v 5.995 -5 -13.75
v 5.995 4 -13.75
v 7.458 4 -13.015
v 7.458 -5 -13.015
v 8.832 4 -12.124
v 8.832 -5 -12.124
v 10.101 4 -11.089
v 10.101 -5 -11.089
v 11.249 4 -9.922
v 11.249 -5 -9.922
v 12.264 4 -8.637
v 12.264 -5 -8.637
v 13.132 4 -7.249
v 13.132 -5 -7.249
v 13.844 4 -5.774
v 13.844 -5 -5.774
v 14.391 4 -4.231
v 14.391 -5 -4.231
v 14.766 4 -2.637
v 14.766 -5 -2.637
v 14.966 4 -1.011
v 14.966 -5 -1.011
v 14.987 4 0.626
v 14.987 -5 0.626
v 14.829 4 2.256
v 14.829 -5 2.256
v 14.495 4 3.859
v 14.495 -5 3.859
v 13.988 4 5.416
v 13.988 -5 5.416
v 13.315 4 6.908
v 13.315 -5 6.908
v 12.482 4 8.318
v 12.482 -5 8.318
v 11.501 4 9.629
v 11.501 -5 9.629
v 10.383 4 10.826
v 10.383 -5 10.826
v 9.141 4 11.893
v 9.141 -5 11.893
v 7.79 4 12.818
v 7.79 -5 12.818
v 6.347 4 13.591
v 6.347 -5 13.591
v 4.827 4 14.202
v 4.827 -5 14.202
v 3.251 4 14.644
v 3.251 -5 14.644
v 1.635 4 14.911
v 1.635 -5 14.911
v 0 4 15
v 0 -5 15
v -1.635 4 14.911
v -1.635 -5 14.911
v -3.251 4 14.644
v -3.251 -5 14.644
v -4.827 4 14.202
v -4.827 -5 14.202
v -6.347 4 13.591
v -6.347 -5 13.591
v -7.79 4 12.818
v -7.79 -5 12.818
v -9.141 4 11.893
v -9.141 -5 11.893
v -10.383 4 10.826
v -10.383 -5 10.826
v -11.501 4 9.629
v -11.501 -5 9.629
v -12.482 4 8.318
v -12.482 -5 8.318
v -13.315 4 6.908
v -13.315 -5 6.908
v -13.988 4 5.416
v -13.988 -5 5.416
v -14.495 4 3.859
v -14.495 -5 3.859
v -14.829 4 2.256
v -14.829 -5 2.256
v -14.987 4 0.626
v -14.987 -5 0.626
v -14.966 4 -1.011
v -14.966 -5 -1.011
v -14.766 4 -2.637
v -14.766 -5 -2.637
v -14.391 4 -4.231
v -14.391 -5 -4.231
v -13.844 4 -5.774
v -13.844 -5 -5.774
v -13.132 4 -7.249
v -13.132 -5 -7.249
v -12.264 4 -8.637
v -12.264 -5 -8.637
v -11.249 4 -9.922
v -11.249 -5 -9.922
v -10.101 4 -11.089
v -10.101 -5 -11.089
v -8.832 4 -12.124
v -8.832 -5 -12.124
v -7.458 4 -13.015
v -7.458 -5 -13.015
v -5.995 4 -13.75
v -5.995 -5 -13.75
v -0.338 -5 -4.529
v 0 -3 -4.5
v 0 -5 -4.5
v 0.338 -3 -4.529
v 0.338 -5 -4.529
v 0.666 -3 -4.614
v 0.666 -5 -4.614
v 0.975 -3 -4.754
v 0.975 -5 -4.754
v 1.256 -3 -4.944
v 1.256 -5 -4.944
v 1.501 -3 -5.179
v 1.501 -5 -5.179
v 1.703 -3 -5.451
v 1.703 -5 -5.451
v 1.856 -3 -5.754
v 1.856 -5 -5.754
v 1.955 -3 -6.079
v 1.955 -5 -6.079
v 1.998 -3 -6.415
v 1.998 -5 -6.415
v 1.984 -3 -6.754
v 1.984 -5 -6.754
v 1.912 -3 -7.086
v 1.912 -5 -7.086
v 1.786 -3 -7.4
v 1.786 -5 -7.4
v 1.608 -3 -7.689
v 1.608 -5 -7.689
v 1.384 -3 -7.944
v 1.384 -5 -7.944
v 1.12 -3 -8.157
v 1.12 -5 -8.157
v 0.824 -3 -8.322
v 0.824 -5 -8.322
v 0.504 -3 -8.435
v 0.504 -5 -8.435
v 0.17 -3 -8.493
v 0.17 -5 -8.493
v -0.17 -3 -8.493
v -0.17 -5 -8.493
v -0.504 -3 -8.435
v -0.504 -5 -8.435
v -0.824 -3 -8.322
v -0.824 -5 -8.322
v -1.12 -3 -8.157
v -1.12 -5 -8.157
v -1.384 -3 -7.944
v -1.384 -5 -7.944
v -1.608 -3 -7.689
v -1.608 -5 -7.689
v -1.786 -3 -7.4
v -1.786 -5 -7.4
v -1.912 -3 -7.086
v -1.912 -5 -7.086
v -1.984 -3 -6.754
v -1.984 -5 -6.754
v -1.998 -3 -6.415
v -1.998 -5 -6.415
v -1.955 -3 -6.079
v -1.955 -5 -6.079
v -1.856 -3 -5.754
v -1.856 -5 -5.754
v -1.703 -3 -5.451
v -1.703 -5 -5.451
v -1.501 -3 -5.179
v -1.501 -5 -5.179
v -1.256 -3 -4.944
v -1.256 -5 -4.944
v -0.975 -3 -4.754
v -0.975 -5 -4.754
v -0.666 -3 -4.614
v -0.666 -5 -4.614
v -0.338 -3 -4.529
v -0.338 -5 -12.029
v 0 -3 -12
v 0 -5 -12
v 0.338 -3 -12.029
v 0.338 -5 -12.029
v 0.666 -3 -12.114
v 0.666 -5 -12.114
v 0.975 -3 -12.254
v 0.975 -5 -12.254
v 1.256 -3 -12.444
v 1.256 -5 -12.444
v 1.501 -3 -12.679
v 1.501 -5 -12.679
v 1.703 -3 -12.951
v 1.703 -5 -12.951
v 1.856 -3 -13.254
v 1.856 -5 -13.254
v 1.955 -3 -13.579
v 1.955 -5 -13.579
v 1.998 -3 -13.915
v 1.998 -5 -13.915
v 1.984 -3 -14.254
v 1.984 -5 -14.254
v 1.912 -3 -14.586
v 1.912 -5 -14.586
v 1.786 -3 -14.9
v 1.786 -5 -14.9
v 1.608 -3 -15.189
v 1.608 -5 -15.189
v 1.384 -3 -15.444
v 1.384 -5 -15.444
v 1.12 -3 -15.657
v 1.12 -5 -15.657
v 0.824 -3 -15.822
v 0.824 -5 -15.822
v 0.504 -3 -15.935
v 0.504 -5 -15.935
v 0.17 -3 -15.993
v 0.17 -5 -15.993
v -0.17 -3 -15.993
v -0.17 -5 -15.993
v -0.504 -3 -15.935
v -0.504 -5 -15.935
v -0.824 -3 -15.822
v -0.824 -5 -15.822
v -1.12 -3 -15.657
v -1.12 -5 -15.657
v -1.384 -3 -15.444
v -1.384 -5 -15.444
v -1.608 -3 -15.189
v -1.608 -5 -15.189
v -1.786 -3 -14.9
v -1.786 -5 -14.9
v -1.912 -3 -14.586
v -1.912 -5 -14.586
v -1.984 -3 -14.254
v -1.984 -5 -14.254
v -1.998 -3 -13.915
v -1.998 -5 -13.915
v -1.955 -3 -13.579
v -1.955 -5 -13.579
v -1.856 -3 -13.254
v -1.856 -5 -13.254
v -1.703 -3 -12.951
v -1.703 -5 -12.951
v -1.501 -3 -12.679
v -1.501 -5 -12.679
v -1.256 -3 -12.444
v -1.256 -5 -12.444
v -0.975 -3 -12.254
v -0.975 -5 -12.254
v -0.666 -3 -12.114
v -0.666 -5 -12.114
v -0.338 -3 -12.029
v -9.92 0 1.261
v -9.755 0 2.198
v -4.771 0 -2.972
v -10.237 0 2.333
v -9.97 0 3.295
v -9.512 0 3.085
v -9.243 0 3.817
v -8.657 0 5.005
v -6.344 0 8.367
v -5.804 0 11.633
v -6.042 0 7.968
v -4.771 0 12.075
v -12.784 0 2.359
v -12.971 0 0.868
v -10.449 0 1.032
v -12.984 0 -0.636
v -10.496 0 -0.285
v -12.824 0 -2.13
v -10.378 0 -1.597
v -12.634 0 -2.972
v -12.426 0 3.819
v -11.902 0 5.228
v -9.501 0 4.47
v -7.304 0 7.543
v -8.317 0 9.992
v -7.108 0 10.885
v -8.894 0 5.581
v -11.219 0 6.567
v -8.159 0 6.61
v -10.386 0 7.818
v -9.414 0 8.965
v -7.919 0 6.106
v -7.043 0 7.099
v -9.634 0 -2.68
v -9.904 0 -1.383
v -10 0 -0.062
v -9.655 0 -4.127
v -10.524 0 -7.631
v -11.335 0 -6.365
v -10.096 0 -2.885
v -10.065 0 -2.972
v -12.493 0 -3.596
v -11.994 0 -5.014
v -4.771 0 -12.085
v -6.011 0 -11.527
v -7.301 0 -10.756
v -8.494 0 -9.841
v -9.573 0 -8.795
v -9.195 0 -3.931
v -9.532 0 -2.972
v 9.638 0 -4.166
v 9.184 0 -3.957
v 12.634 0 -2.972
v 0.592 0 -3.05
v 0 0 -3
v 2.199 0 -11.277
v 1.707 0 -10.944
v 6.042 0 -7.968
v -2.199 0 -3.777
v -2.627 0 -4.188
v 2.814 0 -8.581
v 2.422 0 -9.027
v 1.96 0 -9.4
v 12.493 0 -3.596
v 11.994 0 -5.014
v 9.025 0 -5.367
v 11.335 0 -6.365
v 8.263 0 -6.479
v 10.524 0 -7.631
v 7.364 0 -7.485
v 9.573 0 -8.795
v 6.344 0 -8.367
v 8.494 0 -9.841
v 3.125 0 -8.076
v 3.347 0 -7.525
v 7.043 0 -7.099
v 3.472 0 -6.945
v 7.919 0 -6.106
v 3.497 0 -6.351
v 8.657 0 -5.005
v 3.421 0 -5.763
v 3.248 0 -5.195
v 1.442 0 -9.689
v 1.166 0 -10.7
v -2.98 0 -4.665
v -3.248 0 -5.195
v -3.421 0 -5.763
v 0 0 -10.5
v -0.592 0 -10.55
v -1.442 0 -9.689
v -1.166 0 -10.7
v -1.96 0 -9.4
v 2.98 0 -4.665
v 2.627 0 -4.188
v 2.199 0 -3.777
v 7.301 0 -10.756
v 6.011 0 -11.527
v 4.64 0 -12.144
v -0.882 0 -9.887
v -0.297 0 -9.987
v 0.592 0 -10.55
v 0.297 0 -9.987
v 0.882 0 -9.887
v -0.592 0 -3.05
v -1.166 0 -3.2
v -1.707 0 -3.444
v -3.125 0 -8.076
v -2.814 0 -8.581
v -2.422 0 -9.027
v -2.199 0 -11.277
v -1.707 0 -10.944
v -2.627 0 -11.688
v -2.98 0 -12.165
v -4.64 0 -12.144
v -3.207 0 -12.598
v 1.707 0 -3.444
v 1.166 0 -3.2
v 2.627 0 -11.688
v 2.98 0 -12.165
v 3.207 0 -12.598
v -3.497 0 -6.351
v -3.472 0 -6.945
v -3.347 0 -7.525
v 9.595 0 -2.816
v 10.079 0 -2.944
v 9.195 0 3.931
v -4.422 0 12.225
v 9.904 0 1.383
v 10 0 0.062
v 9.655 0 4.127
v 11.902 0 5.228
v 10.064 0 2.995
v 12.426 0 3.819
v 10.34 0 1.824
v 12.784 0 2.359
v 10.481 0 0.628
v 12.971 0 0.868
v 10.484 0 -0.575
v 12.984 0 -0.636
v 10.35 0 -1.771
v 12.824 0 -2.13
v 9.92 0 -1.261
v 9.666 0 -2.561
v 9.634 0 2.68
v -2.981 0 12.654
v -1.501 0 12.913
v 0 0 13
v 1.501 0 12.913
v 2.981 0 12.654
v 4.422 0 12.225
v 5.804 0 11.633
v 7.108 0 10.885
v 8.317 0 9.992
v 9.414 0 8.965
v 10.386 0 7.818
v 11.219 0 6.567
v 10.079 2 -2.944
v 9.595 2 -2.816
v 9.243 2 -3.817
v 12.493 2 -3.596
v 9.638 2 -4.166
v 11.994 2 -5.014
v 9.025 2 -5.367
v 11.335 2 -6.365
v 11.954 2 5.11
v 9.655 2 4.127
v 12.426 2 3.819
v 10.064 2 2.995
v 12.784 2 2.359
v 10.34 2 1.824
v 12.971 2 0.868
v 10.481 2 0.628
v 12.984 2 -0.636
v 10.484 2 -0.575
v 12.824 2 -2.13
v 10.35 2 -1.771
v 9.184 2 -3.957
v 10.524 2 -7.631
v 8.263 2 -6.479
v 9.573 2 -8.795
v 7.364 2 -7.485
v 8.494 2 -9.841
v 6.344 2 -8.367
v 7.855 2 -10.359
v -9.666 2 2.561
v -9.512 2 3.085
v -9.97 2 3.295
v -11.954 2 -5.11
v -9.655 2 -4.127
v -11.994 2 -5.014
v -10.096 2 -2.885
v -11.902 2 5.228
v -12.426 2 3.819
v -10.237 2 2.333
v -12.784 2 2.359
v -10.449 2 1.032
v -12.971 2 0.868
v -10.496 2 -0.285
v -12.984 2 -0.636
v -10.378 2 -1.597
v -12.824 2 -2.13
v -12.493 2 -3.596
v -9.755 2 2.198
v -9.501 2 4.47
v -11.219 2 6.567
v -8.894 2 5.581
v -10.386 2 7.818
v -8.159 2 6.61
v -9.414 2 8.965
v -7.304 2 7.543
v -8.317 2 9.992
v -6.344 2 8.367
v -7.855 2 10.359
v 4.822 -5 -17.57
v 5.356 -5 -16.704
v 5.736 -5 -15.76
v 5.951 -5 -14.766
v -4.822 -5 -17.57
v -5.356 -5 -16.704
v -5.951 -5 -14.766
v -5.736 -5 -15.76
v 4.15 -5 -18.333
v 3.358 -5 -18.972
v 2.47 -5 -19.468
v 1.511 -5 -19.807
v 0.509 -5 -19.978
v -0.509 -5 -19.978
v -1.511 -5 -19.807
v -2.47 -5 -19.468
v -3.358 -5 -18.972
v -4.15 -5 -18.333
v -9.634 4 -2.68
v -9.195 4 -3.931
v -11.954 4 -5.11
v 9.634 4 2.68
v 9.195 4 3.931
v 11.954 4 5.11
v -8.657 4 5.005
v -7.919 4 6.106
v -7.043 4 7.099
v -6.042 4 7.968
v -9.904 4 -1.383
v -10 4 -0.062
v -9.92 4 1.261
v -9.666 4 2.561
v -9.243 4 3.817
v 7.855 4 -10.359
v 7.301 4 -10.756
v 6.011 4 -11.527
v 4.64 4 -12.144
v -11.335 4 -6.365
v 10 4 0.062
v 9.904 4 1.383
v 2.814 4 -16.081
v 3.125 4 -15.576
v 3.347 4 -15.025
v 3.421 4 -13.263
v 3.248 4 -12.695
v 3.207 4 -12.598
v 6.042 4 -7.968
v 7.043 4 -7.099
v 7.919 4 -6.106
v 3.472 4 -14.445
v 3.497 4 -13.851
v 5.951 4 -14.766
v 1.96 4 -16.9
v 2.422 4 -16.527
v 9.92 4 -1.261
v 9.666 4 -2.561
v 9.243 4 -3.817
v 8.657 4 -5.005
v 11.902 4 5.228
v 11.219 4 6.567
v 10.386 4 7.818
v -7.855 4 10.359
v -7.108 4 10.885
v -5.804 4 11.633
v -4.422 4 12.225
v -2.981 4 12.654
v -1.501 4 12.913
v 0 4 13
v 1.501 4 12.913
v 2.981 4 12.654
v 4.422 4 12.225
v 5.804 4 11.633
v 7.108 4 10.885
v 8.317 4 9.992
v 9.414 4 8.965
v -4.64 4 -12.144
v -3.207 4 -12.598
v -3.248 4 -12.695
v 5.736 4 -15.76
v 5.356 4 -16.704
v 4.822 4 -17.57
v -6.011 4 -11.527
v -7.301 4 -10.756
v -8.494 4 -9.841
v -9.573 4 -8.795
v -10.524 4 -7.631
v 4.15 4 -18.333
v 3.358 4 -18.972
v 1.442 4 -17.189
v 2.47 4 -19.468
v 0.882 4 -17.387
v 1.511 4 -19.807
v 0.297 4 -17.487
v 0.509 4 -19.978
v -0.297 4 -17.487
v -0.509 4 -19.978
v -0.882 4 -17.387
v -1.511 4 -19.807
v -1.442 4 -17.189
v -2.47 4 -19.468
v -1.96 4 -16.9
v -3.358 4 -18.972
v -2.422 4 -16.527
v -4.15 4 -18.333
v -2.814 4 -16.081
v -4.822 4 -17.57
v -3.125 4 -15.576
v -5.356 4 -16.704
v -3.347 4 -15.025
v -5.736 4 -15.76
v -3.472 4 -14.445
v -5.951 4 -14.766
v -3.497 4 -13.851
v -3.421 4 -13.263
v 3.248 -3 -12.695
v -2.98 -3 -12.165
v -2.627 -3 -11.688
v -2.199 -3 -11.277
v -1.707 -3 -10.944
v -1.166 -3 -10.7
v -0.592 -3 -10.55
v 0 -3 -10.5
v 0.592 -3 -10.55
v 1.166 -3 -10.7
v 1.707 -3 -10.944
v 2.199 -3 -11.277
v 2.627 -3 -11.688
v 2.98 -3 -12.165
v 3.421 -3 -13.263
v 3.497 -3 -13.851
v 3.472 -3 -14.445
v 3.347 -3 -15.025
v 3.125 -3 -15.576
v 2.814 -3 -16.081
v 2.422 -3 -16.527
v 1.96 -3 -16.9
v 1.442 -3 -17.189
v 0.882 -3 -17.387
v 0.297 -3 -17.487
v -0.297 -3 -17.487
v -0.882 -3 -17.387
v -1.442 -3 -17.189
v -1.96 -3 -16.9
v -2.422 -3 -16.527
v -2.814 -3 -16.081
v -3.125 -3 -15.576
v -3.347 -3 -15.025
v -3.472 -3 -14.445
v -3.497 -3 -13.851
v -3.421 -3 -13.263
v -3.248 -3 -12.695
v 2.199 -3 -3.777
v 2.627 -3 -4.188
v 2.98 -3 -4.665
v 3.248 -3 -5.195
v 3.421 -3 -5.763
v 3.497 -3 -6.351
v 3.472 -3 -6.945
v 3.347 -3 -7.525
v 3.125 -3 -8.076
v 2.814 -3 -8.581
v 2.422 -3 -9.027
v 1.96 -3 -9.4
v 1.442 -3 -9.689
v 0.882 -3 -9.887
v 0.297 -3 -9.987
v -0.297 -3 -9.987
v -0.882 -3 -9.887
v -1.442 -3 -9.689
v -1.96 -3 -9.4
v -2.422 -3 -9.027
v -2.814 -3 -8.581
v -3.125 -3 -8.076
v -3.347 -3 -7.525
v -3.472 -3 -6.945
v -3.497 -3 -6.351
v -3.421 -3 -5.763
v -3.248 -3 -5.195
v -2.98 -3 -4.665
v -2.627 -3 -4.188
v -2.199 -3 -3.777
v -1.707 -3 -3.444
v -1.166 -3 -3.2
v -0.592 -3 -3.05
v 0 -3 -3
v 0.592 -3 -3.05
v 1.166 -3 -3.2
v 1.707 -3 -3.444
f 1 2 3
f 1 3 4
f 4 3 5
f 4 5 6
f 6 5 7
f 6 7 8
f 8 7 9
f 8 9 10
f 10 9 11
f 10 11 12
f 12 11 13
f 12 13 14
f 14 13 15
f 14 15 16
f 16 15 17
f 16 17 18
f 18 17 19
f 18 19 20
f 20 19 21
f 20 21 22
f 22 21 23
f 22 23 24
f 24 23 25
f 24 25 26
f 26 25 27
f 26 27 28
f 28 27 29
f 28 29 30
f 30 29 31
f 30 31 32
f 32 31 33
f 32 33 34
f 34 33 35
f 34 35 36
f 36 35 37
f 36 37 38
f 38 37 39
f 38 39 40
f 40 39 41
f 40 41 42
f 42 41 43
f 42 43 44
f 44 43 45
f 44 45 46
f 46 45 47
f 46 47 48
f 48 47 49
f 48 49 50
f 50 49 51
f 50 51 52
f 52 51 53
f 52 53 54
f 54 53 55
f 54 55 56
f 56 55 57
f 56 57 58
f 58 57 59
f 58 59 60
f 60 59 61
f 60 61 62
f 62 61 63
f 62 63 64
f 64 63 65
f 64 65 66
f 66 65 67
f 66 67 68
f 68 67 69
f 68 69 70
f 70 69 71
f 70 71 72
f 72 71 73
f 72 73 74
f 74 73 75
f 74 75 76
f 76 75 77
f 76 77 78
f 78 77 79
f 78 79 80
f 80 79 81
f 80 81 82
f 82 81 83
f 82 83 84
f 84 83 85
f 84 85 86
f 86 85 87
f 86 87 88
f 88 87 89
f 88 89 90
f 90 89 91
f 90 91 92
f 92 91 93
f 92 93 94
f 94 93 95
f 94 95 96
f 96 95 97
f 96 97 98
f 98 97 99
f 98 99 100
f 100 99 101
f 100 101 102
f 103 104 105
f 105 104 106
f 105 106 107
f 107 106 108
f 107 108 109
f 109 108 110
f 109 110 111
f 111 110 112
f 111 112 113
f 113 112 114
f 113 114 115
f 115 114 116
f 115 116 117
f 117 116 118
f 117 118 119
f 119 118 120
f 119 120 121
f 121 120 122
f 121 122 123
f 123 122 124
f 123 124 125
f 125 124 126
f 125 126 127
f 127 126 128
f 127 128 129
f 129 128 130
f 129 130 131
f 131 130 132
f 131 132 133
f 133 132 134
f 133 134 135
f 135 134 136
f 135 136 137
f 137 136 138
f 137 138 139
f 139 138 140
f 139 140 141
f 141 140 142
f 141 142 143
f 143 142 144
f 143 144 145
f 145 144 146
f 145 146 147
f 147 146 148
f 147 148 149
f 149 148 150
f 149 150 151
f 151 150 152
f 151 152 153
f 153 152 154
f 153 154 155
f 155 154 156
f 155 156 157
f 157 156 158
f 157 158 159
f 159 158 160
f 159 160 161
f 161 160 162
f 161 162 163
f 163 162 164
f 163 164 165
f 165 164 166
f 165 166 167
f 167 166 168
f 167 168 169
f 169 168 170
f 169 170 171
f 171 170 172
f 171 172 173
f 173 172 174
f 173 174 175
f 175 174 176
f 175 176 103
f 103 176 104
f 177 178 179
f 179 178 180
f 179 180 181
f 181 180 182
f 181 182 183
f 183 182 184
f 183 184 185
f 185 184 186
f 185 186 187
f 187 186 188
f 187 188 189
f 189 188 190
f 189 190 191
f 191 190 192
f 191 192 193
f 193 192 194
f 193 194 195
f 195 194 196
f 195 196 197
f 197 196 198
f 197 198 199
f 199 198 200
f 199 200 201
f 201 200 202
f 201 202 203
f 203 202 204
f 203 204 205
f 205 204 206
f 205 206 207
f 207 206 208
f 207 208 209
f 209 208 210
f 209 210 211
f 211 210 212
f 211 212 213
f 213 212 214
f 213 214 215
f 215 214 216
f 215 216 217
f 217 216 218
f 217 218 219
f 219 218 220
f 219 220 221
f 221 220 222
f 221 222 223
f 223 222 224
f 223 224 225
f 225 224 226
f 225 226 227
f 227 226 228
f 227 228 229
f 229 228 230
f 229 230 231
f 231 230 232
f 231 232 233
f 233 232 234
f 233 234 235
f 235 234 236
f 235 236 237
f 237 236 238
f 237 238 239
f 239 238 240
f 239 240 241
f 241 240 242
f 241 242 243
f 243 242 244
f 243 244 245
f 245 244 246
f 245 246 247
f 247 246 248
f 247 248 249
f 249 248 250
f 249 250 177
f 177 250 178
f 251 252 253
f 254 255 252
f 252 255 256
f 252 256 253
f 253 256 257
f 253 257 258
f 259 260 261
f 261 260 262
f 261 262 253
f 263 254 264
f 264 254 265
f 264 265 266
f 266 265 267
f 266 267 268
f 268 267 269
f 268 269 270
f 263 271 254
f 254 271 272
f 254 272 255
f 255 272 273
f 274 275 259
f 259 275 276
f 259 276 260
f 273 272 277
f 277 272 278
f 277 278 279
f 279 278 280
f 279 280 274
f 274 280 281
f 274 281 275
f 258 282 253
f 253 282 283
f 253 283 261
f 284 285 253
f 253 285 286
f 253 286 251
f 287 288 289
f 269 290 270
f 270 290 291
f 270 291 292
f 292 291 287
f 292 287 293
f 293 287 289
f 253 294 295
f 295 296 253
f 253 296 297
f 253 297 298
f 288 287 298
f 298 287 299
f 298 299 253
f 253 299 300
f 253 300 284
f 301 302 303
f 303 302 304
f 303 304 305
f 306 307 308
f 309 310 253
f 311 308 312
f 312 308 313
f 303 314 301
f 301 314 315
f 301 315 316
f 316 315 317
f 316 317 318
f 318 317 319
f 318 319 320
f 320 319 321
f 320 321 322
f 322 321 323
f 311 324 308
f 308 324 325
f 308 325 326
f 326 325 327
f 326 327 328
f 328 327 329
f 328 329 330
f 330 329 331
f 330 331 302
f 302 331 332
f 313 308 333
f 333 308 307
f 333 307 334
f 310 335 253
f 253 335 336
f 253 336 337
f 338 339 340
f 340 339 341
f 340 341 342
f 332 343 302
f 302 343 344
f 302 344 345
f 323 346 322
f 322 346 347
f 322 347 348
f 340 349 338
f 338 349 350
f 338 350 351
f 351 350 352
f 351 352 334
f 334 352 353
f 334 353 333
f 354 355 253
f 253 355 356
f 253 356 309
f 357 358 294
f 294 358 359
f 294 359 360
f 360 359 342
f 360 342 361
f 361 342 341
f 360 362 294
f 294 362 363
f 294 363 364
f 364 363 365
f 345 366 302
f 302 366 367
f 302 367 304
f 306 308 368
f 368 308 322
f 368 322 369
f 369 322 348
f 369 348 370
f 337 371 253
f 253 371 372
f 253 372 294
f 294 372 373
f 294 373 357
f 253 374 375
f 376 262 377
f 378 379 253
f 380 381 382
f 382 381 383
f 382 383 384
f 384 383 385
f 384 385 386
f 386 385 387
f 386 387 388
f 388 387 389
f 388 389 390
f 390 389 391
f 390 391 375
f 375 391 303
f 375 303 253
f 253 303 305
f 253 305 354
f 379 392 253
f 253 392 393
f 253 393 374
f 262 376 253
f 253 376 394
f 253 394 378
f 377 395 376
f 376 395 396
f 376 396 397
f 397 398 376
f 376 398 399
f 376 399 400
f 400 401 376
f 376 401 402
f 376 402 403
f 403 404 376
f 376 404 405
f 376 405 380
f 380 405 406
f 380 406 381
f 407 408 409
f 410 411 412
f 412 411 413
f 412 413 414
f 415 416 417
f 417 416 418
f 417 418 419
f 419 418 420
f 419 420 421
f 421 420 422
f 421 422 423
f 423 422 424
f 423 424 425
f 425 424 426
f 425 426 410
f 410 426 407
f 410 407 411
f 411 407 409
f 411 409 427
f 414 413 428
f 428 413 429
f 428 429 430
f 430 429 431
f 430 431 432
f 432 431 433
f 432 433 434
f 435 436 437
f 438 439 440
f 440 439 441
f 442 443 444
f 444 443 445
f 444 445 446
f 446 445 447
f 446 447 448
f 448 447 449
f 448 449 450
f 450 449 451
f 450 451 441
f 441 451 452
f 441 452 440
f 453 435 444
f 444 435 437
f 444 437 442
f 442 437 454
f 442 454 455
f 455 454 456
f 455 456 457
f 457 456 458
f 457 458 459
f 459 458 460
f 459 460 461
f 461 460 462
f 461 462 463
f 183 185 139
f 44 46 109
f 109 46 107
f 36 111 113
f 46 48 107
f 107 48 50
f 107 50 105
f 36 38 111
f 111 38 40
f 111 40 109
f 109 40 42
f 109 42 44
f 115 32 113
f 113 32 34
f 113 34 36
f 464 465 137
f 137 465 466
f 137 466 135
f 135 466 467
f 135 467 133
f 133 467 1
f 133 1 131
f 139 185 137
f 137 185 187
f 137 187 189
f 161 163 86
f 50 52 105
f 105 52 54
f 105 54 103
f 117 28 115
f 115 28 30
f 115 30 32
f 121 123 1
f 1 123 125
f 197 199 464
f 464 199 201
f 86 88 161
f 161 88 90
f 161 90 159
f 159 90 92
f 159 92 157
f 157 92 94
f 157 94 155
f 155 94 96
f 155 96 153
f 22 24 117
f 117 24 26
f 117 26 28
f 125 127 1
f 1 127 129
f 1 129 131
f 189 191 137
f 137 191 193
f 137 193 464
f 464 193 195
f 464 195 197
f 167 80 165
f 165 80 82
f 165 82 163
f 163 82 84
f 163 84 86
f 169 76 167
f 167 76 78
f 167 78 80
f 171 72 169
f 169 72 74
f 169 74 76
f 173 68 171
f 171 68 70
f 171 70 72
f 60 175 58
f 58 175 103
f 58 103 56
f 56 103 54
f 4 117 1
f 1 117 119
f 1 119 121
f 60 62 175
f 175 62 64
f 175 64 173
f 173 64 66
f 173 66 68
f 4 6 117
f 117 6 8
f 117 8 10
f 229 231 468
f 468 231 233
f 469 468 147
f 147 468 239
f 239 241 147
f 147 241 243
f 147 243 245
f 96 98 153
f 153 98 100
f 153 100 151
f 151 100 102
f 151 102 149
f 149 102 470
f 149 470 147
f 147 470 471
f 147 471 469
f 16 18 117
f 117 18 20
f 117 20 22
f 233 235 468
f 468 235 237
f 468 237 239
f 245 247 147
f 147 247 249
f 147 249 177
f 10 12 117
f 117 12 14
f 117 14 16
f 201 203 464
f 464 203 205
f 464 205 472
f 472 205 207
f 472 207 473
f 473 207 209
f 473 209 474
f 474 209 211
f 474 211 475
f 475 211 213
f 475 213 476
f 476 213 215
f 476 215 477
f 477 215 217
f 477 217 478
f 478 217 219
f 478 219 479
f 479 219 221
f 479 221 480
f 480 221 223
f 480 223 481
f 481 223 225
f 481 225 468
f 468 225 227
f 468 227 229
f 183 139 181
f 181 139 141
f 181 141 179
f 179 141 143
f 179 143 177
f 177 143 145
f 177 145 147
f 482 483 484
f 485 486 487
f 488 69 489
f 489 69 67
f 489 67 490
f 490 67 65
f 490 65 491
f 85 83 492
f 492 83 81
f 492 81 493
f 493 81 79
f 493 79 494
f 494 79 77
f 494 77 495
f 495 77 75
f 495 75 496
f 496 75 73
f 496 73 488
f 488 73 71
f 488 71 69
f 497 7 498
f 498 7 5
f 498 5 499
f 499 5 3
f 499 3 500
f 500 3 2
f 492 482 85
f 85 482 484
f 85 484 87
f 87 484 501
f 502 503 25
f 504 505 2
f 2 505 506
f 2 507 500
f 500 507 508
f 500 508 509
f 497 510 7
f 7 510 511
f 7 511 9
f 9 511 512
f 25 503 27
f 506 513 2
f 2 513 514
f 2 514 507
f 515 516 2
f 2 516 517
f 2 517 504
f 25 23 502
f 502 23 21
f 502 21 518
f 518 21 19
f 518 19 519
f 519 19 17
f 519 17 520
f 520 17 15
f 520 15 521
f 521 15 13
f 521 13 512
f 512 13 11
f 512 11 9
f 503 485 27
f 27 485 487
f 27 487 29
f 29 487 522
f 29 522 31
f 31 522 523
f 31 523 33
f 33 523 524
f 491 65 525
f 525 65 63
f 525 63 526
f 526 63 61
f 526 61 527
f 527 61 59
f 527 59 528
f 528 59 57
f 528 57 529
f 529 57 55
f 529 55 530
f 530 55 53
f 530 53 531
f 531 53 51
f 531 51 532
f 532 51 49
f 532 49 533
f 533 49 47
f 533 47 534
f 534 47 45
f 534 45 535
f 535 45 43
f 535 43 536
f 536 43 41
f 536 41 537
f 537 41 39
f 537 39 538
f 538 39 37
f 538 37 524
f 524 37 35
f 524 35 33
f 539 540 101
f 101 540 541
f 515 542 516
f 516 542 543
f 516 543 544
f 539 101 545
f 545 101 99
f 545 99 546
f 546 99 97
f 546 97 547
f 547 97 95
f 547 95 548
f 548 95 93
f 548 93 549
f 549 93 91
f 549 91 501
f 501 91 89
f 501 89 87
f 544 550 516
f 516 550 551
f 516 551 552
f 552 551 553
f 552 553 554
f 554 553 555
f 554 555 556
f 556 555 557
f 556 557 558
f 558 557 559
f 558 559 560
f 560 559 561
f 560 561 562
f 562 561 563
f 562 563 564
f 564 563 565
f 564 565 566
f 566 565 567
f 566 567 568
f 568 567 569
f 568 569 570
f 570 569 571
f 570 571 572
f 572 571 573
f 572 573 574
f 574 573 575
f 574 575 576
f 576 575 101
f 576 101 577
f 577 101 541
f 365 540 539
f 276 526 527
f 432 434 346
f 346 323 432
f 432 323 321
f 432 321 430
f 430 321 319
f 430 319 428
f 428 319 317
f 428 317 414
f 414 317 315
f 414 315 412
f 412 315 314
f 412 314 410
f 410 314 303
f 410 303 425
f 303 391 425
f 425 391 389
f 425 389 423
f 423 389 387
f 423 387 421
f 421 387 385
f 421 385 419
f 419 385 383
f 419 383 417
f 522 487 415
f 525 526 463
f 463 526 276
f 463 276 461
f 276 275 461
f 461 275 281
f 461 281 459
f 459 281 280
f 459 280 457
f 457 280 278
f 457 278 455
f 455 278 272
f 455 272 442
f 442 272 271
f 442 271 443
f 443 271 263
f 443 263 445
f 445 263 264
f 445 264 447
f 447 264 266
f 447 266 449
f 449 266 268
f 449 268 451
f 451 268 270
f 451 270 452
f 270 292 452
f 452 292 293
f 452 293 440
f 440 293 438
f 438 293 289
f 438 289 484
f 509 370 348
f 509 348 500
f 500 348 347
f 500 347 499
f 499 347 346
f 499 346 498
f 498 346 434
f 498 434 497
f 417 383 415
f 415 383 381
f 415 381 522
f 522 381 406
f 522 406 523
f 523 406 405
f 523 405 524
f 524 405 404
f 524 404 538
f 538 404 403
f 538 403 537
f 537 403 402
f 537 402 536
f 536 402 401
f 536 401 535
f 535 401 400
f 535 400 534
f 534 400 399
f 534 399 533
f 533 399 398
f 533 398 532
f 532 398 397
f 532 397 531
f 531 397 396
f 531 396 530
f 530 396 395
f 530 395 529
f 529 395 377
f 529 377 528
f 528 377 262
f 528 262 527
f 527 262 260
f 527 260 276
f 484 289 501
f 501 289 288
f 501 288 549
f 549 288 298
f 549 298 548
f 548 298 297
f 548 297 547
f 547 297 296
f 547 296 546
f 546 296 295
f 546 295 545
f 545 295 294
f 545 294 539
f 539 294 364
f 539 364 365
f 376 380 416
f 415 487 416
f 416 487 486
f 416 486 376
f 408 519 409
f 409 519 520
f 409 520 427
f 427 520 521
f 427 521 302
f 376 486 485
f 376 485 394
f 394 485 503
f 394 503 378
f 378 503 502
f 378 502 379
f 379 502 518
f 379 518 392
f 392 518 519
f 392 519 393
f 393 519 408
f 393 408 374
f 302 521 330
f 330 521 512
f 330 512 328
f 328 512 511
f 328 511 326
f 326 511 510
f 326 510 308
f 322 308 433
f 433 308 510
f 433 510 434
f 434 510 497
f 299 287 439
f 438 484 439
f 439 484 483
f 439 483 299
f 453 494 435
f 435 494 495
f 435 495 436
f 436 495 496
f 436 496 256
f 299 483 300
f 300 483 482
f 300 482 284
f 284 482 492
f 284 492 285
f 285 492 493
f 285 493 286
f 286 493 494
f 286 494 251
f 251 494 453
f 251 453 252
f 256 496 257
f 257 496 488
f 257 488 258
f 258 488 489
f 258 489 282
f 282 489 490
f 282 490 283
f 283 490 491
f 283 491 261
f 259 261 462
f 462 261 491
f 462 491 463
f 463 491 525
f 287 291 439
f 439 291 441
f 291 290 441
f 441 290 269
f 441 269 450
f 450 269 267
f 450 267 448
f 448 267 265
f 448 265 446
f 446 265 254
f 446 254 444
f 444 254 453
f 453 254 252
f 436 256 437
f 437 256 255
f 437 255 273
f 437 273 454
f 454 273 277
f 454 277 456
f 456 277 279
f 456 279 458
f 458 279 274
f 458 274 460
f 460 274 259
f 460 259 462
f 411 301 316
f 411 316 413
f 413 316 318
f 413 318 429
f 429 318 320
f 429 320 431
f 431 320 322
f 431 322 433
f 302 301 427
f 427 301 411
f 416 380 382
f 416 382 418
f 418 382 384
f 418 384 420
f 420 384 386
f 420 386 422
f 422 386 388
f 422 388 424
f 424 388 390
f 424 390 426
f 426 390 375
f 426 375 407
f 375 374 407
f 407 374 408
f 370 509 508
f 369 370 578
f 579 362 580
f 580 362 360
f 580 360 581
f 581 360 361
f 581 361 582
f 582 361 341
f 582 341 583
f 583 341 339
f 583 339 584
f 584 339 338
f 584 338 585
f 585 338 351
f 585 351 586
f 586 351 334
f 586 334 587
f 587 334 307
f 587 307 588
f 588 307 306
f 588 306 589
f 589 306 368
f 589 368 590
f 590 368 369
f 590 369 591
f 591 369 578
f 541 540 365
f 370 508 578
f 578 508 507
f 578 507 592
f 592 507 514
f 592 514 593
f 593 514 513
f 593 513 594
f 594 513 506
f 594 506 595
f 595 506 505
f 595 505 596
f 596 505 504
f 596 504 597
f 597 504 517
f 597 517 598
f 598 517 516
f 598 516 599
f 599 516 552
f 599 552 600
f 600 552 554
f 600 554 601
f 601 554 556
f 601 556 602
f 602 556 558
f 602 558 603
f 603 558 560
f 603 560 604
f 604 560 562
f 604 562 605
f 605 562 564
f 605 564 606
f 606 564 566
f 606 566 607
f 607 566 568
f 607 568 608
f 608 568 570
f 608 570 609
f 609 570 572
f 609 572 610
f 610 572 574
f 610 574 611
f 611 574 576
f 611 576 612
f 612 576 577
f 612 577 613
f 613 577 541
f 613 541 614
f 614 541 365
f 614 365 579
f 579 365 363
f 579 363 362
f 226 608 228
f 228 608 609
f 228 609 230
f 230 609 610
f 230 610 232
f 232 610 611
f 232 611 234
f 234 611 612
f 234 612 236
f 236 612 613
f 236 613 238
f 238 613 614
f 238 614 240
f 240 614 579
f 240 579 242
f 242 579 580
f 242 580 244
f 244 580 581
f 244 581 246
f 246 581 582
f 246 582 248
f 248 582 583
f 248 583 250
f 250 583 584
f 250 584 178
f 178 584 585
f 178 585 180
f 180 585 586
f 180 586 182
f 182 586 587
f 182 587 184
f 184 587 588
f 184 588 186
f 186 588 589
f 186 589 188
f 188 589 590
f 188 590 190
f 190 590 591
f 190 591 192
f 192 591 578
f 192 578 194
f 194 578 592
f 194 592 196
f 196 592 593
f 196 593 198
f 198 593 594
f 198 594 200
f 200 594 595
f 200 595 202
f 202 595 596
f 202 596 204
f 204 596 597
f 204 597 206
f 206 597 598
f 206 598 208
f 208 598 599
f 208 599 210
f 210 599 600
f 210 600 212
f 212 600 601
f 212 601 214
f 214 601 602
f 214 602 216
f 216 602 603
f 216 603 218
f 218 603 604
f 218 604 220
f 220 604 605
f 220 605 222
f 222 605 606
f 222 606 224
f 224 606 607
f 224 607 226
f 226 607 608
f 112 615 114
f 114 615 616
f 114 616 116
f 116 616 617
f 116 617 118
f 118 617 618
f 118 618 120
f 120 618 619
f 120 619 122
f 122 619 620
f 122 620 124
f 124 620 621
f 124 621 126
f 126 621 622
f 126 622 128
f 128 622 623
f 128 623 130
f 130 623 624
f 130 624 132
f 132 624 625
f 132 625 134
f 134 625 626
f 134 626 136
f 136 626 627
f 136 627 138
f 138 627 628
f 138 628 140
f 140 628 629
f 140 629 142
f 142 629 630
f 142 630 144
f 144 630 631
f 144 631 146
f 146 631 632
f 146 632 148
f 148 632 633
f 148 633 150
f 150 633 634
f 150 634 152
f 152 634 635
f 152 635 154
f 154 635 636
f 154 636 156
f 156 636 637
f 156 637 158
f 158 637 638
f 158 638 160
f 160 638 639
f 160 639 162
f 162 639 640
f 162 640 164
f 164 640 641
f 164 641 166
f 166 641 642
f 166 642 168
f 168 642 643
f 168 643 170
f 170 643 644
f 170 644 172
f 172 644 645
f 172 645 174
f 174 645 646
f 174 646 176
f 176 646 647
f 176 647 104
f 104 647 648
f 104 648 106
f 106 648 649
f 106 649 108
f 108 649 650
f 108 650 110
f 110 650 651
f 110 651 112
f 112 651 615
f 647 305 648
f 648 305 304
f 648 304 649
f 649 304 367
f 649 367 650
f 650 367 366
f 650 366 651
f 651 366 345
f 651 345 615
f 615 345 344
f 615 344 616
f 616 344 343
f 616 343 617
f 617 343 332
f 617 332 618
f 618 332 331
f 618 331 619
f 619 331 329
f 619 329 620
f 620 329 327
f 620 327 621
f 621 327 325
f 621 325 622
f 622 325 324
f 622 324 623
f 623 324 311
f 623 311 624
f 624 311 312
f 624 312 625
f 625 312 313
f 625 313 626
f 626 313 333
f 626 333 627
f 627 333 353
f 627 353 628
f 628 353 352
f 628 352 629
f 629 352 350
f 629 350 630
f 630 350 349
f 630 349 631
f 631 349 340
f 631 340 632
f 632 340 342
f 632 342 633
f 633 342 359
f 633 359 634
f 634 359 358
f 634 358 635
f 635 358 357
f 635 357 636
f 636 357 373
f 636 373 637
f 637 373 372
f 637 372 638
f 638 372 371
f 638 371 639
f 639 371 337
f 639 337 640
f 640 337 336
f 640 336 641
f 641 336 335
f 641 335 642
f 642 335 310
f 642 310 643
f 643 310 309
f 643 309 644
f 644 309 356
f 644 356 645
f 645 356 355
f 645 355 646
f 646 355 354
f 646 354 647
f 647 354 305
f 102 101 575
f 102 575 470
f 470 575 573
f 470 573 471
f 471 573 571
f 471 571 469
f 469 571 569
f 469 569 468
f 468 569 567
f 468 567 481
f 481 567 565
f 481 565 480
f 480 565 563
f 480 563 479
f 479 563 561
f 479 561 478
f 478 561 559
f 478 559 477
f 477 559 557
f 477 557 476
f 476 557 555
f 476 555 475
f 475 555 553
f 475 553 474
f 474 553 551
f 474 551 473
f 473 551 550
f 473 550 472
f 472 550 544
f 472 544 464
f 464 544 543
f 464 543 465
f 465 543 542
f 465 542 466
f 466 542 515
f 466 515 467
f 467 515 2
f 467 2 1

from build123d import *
from build123d.topology import SkipClean

# Parameters (mm, degrees)
SKIZZE1_R                       = 15
AUFSATZ_LINEAR_AUSTRAGEN1_DEPTH = 5
AUFSATZ_LINEAR_START            = 4
SKIZZE2_R                       = 15
SKIZZE2_R_2                     = 13
AUFSATZ_LINEAR_AUSTRAGEN2_DEPTH = 4
AUFSATZ_LINEAR_AUSTRAGEN3_DEPTH = 2
AUFSATZ_LINEAR_START_2          = 3
AUFSATZ_LINEAR_AUSTRAGEN6_DEPTH = 3
SKIZZE12_R                      = 2
SCHNITT_LINEAR_AUSTRAGEN1_DEPTH = 10
SKIZZE13_R                      = 3.5
SCHNITT_LINEAR_AUSTRAGEN2_DEPTH = 7
AUFSATZ_LINEAR_AUSTRAGEN7_DEPTH = 9
SKIZZE15_R                      = 3.5
SKIZZE15_R_2                    = 2
AUFSATZ_LINEAR_AUSTRAGEN8_DEPTH = 2


with BuildPart() as part:
    # Skizze1 → Aufsatz-Linear austragen1 (new body)
    with BuildSketch(Plane(origin=(0, 0, 0), x_dir=(1, 0, 0), z_dir=(0, 1, 0))):
        Circle(SKIZZE1_R)
    extrude(amount=-AUFSATZ_LINEAR_AUSTRAGEN1_DEPTH)

    # Skizze2 → Aufsatz-Linear austragen2 (add)
    with BuildSketch(Plane(origin=(0, 0, 0), x_dir=(1, 0, 0), z_dir=(0, 1, 0)).offset(AUFSATZ_LINEAR_START)):
        Circle(SKIZZE2_R)
        Circle(SKIZZE2_R_2, mode=Mode.SUBTRACT)
    extrude(amount=-AUFSATZ_LINEAR_AUSTRAGEN2_DEPTH)

    # Skizze3 → Aufsatz-Linear austragen3 (add)
    with BuildSketch(Plane(origin=(0, 4, 0), x_dir=(1, 0, 0), z_dir=(0, 1, 0))):
        with BuildLine():
            Line((-6.042078, -7.968268), (-7.854702, -10.358748))
            ThreePointArc((-7.854702, -10.358748), (-12.566291, -3.329914), (-11.953671, 5.109771))
            Line((-11.953671, 5.109771), (-9.195131, 3.930593))
            ThreePointArc((-9.195131, 3.930593), (-9.666378, -2.561472), (-6.042078, -7.968268))
        make_face()
        with BuildLine():
            Line((6.042078, 7.968268), (7.854702, 10.358748))
            ThreePointArc((7.854702, 10.358748), (12.566291, 3.329914), (11.953671, -5.109771))
            Line((11.953671, -5.109771), (9.195131, -3.930593))
            ThreePointArc((9.195131, -3.930593), (9.666378, 2.561472), (6.042078, 7.968268))
        make_face()
    extrude(amount=-AUFSATZ_LINEAR_AUSTRAGEN3_DEPTH)

    # Skizze11 → Aufsatz-Linear austragen6 (add)
    with BuildSketch(Plane(origin=(0, 0, 0), x_dir=(1, 0, 0), z_dir=(0, 1, 0)).offset(AUFSATZ_LINEAR_START_2)):
        with BuildLine():
            Line((-9.195131, 3.930593), (-9.654888, 4.127123))
            ThreePointArc((-9.654888, 4.127123), (-10.457571, 0.942977), (-10.237444, -2.333398))
            Line((-10.237444, -2.333398), (-9.755374, -2.198334))
            ThreePointArc((-9.755374, -2.198334), (-9.958481, 0.910302), (-9.195131, 3.930593))
        make_face()
        with BuildLine():
            Line((-9.512352, -3.084666), (-9.96953, -3.295219))
            ThreePointArc((-9.96953, -3.295219), (-8.541911, -6.106207), (-6.344182, -8.366681))
            Line((-6.344182, -8.366681), (-6.042078, -7.968268))
            ThreePointArc((-6.042078, -7.968268), (-8.151532, -5.792455), (-9.512352, -3.084666))
        make_face()
        with BuildLine():
            Line((6.344182, 8.366681), (6.042078, 7.968268))
            ThreePointArc((6.042078, 7.968268), (7.872714, 6.166066), (9.183817, 3.956957))
            Line((9.183817, 3.956957), (9.638169, 4.166018))
            ThreePointArc((9.638169, 4.166018), (8.262583, 6.479176), (6.344182, 8.366681))
        make_face()
        with BuildLine():
            Line((10.078818, 2.944049), (9.595423, 2.815647))
            ThreePointArc((9.595423, 2.815647), (9.982443, -0.592313), (9.195131, -3.930593))
            Line((9.195131, -3.930593), (9.654888, -4.127123))
            ThreePointArc((9.654888, -4.127123), (10.481181, -0.628367), (10.078818, 2.944049))
        make_face()
    extrude(amount=-AUFSATZ_LINEAR_AUSTRAGEN6_DEPTH)

    # Skizze12 → Schnitt-Linear austragen1 (cut)
    with BuildSketch(Plane(origin=(0, 0, 0), x_dir=(1, 0, 0), z_dir=(0, 1, 0))):
        with Locations((0, 6.5)):
            Circle(SKIZZE12_R)
        with Locations((0, 14)):
            Circle(SKIZZE12_R)
    extrude(amount=-SCHNITT_LINEAR_AUSTRAGEN1_DEPTH, mode=Mode.SUBTRACT)

    # Skizze13 → Schnitt-Linear austragen2 (cut)
    with BuildSketch(Plane(origin=(0, 4, 0), x_dir=(1, 0, 0), z_dir=(0, 1, 0))):
        with Locations((0, 14)):
            Circle(SKIZZE13_R)
        with Locations((0, 6.5)):
            Circle(SKIZZE13_R)
    extrude(amount=-SCHNITT_LINEAR_AUSTRAGEN2_DEPTH, mode=Mode.SUBTRACT)

    # Skizze14 → Aufsatz-Linear austragen7 (add)
    with SkipClean():  # the faces are left unmerged after this step: merging them gives an invalid solid
        with BuildSketch(Plane(origin=(0, 4, 0), x_dir=(1, 0, 0), z_dir=(0, 1, 0))):
            with BuildLine():
                Line((-5.994789, 13.75), (-3.448498, 14.598214))
                ThreePointArc((-3.448498, 14.598214), (0, 17.5), (3.448498, 14.598214))
                Line((3.448498, 14.598214), (5.994789, 13.75))
                ThreePointArc((5.994789, 13.75), (4.330127, 18.153312), (0, 20))
                ThreePointArc((0, 20), (-4.330127, 18.153312), (-5.994789, 13.75))
            make_face()
        extrude(amount=-AUFSATZ_LINEAR_AUSTRAGEN7_DEPTH)

    # Skizze15 → Aufsatz-Linear austragen8 (add)
    with BuildSketch(Plane(origin=(0, -3, 0), x_dir=(1, 0, 0), z_dir=(0, 1, 0))):
        with Locations((0, 14)):
            Circle(SKIZZE15_R)
        with Locations((0, 14)):
            Circle(SKIZZE15_R_2, mode=Mode.SUBTRACT)
    extrude(amount=-AUFSATZ_LINEAR_AUSTRAGEN8_DEPTH)


solid = part.part
